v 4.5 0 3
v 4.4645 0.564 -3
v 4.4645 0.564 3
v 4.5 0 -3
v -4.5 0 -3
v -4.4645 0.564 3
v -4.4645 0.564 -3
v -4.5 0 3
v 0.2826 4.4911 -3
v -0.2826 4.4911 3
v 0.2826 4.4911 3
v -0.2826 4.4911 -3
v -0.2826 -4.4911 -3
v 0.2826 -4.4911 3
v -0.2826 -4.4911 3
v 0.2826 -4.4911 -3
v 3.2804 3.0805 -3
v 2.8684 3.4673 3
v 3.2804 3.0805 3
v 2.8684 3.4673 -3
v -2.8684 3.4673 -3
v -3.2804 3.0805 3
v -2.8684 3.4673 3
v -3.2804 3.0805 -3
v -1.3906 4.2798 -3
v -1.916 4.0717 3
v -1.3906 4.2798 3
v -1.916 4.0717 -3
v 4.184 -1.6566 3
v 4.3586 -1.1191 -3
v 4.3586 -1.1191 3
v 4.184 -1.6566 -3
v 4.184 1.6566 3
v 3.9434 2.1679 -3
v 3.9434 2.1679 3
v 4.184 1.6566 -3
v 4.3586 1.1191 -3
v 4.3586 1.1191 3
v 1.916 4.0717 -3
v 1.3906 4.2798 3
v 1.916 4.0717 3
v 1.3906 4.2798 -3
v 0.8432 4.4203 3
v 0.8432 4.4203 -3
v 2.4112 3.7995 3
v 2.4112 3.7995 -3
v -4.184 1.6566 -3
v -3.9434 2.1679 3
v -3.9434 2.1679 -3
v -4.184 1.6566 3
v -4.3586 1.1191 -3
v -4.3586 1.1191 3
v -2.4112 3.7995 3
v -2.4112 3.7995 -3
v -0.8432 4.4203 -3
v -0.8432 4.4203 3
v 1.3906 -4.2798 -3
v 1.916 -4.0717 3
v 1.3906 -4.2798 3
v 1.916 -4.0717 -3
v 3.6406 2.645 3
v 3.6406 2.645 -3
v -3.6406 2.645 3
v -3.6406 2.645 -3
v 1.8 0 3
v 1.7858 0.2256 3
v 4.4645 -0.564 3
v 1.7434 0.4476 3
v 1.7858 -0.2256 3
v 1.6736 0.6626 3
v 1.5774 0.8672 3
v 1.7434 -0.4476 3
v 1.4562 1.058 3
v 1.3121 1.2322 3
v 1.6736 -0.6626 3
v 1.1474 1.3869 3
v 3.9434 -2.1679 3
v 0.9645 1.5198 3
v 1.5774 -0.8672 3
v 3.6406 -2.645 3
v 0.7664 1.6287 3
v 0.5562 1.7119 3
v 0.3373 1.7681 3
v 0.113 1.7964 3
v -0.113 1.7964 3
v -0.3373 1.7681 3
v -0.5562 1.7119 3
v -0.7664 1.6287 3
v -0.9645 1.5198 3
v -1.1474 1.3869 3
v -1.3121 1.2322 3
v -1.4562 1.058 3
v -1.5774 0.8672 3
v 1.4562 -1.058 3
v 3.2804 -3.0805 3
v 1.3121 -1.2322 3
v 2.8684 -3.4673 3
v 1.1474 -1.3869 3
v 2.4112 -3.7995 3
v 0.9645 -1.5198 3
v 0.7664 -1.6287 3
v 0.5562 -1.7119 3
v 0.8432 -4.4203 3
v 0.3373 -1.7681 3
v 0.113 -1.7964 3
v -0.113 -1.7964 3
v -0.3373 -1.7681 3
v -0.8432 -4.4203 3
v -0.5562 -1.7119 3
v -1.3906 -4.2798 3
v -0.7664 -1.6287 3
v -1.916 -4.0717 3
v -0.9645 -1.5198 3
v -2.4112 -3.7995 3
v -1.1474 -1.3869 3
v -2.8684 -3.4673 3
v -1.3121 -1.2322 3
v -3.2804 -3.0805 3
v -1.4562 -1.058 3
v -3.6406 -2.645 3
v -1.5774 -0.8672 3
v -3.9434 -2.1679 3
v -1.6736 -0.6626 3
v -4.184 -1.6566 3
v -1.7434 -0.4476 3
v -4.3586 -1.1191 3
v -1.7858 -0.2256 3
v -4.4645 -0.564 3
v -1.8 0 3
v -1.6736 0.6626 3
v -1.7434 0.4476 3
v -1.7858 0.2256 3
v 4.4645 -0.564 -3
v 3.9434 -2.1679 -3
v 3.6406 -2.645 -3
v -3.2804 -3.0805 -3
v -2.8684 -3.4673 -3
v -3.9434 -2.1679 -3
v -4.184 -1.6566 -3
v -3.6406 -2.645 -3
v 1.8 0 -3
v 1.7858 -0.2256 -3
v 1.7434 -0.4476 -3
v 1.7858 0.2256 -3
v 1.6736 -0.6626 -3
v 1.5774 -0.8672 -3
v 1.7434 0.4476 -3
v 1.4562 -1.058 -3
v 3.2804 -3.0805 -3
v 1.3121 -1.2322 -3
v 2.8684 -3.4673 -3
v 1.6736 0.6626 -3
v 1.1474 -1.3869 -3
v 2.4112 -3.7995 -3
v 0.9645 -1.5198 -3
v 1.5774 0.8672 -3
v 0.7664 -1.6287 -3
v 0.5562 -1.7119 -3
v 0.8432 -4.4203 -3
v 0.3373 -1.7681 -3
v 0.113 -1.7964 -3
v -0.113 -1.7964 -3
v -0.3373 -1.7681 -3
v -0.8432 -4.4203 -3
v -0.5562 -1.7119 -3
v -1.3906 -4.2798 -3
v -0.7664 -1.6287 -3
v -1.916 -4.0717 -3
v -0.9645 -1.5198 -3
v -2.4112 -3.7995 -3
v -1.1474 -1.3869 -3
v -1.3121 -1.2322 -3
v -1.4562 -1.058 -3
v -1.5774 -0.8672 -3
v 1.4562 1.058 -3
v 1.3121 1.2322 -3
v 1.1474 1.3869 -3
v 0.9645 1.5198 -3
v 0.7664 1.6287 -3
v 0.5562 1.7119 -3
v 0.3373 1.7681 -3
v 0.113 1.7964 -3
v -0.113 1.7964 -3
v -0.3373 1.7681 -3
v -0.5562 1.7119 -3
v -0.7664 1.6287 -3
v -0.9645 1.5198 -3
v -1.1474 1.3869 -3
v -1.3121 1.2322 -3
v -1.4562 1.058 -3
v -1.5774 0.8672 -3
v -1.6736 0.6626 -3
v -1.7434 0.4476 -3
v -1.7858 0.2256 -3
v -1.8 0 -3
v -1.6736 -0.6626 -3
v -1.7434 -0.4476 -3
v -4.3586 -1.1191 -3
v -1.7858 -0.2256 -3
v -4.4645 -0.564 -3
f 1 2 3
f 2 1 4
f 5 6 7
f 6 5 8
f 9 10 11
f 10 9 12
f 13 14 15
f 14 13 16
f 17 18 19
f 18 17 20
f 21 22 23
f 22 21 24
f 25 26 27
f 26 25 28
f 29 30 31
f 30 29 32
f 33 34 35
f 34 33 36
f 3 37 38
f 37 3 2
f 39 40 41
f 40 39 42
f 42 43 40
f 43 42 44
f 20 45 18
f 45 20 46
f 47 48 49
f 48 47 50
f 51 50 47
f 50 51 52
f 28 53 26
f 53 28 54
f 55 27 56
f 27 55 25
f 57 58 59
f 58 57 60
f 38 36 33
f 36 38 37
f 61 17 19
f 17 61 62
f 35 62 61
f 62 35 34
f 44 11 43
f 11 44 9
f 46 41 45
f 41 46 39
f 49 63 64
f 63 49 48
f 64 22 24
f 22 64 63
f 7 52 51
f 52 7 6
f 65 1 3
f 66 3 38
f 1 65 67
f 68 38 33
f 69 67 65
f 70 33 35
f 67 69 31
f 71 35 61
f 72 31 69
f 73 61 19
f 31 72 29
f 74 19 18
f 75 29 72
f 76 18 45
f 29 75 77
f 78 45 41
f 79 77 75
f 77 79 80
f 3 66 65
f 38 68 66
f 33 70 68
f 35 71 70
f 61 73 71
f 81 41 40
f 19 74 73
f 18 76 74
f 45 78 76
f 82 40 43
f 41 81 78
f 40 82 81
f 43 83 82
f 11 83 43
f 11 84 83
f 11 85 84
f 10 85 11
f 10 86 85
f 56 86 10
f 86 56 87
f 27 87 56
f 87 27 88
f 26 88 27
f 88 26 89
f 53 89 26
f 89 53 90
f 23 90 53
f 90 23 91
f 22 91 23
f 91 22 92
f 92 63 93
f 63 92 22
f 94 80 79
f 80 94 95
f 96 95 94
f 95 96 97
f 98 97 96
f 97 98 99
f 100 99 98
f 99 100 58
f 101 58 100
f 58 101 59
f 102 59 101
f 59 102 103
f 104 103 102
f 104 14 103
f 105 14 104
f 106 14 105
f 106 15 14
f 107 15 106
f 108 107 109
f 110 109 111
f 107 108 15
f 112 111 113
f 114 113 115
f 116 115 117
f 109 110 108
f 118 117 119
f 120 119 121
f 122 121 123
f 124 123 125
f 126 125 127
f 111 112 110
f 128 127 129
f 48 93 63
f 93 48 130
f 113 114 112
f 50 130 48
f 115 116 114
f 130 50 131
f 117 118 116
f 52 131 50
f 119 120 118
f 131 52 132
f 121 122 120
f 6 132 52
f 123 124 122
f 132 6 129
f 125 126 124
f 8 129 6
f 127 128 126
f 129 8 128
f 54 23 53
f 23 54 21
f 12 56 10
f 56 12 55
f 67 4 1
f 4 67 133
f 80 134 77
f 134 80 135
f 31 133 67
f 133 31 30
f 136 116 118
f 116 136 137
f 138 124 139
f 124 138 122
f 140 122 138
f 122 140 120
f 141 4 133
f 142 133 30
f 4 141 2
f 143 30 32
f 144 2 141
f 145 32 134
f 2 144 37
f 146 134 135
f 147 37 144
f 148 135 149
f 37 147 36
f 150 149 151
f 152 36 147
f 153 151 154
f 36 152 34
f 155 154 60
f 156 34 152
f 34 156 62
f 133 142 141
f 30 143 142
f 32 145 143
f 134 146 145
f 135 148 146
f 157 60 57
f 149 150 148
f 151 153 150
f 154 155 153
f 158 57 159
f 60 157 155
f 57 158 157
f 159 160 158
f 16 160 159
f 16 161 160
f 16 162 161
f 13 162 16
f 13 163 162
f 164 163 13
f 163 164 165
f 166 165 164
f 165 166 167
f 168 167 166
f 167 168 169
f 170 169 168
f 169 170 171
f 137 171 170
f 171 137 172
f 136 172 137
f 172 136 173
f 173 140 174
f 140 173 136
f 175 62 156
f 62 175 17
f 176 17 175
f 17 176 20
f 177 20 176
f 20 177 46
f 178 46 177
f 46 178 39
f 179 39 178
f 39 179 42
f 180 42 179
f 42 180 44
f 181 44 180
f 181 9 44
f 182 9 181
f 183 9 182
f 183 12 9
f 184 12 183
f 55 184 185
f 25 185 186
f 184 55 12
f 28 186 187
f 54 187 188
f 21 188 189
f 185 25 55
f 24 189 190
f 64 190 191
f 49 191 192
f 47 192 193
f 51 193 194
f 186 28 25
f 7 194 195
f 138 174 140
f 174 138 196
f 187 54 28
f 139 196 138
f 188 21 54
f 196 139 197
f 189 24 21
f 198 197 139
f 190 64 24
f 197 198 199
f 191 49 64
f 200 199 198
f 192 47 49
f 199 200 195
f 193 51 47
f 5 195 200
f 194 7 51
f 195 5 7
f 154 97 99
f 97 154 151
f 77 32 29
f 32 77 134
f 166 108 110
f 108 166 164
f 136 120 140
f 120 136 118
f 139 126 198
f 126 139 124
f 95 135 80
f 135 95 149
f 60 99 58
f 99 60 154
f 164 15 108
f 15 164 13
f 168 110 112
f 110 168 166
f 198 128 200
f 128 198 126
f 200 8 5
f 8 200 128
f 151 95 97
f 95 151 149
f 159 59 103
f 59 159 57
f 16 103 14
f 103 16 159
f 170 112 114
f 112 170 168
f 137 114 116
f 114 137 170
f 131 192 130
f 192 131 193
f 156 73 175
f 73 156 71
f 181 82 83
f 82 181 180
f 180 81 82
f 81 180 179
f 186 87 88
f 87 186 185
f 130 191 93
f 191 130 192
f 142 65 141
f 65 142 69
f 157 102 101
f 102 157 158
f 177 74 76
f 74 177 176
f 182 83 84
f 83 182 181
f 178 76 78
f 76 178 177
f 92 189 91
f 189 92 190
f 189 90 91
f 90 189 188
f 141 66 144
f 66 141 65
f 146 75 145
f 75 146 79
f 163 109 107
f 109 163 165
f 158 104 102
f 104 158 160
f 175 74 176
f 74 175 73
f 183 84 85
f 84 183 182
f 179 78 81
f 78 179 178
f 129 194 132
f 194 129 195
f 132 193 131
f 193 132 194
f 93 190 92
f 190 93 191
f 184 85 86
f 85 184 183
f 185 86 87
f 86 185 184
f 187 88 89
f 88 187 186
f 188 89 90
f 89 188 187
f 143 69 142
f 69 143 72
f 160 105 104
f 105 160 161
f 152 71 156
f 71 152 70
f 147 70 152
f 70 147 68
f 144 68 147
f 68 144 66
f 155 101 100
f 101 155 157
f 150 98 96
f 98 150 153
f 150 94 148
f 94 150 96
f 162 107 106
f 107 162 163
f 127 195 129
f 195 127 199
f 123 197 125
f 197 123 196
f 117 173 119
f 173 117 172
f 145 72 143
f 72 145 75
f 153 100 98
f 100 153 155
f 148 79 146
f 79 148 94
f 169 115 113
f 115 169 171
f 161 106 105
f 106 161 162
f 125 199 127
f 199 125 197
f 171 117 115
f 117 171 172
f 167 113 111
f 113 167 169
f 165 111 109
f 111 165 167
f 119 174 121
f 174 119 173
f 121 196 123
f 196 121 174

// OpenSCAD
$fn = 50;


difference() {
	union() {
		translate(v = [0, 0, -3.0000000000]) {
			cylinder(h = 6, r = 4.5000000000);
		}
	}
	union() {
		translate(v = [0, 0, -100.0000000000]) {
			cylinder(h = 200, r = 1.8000000000);
		}
	}
}
